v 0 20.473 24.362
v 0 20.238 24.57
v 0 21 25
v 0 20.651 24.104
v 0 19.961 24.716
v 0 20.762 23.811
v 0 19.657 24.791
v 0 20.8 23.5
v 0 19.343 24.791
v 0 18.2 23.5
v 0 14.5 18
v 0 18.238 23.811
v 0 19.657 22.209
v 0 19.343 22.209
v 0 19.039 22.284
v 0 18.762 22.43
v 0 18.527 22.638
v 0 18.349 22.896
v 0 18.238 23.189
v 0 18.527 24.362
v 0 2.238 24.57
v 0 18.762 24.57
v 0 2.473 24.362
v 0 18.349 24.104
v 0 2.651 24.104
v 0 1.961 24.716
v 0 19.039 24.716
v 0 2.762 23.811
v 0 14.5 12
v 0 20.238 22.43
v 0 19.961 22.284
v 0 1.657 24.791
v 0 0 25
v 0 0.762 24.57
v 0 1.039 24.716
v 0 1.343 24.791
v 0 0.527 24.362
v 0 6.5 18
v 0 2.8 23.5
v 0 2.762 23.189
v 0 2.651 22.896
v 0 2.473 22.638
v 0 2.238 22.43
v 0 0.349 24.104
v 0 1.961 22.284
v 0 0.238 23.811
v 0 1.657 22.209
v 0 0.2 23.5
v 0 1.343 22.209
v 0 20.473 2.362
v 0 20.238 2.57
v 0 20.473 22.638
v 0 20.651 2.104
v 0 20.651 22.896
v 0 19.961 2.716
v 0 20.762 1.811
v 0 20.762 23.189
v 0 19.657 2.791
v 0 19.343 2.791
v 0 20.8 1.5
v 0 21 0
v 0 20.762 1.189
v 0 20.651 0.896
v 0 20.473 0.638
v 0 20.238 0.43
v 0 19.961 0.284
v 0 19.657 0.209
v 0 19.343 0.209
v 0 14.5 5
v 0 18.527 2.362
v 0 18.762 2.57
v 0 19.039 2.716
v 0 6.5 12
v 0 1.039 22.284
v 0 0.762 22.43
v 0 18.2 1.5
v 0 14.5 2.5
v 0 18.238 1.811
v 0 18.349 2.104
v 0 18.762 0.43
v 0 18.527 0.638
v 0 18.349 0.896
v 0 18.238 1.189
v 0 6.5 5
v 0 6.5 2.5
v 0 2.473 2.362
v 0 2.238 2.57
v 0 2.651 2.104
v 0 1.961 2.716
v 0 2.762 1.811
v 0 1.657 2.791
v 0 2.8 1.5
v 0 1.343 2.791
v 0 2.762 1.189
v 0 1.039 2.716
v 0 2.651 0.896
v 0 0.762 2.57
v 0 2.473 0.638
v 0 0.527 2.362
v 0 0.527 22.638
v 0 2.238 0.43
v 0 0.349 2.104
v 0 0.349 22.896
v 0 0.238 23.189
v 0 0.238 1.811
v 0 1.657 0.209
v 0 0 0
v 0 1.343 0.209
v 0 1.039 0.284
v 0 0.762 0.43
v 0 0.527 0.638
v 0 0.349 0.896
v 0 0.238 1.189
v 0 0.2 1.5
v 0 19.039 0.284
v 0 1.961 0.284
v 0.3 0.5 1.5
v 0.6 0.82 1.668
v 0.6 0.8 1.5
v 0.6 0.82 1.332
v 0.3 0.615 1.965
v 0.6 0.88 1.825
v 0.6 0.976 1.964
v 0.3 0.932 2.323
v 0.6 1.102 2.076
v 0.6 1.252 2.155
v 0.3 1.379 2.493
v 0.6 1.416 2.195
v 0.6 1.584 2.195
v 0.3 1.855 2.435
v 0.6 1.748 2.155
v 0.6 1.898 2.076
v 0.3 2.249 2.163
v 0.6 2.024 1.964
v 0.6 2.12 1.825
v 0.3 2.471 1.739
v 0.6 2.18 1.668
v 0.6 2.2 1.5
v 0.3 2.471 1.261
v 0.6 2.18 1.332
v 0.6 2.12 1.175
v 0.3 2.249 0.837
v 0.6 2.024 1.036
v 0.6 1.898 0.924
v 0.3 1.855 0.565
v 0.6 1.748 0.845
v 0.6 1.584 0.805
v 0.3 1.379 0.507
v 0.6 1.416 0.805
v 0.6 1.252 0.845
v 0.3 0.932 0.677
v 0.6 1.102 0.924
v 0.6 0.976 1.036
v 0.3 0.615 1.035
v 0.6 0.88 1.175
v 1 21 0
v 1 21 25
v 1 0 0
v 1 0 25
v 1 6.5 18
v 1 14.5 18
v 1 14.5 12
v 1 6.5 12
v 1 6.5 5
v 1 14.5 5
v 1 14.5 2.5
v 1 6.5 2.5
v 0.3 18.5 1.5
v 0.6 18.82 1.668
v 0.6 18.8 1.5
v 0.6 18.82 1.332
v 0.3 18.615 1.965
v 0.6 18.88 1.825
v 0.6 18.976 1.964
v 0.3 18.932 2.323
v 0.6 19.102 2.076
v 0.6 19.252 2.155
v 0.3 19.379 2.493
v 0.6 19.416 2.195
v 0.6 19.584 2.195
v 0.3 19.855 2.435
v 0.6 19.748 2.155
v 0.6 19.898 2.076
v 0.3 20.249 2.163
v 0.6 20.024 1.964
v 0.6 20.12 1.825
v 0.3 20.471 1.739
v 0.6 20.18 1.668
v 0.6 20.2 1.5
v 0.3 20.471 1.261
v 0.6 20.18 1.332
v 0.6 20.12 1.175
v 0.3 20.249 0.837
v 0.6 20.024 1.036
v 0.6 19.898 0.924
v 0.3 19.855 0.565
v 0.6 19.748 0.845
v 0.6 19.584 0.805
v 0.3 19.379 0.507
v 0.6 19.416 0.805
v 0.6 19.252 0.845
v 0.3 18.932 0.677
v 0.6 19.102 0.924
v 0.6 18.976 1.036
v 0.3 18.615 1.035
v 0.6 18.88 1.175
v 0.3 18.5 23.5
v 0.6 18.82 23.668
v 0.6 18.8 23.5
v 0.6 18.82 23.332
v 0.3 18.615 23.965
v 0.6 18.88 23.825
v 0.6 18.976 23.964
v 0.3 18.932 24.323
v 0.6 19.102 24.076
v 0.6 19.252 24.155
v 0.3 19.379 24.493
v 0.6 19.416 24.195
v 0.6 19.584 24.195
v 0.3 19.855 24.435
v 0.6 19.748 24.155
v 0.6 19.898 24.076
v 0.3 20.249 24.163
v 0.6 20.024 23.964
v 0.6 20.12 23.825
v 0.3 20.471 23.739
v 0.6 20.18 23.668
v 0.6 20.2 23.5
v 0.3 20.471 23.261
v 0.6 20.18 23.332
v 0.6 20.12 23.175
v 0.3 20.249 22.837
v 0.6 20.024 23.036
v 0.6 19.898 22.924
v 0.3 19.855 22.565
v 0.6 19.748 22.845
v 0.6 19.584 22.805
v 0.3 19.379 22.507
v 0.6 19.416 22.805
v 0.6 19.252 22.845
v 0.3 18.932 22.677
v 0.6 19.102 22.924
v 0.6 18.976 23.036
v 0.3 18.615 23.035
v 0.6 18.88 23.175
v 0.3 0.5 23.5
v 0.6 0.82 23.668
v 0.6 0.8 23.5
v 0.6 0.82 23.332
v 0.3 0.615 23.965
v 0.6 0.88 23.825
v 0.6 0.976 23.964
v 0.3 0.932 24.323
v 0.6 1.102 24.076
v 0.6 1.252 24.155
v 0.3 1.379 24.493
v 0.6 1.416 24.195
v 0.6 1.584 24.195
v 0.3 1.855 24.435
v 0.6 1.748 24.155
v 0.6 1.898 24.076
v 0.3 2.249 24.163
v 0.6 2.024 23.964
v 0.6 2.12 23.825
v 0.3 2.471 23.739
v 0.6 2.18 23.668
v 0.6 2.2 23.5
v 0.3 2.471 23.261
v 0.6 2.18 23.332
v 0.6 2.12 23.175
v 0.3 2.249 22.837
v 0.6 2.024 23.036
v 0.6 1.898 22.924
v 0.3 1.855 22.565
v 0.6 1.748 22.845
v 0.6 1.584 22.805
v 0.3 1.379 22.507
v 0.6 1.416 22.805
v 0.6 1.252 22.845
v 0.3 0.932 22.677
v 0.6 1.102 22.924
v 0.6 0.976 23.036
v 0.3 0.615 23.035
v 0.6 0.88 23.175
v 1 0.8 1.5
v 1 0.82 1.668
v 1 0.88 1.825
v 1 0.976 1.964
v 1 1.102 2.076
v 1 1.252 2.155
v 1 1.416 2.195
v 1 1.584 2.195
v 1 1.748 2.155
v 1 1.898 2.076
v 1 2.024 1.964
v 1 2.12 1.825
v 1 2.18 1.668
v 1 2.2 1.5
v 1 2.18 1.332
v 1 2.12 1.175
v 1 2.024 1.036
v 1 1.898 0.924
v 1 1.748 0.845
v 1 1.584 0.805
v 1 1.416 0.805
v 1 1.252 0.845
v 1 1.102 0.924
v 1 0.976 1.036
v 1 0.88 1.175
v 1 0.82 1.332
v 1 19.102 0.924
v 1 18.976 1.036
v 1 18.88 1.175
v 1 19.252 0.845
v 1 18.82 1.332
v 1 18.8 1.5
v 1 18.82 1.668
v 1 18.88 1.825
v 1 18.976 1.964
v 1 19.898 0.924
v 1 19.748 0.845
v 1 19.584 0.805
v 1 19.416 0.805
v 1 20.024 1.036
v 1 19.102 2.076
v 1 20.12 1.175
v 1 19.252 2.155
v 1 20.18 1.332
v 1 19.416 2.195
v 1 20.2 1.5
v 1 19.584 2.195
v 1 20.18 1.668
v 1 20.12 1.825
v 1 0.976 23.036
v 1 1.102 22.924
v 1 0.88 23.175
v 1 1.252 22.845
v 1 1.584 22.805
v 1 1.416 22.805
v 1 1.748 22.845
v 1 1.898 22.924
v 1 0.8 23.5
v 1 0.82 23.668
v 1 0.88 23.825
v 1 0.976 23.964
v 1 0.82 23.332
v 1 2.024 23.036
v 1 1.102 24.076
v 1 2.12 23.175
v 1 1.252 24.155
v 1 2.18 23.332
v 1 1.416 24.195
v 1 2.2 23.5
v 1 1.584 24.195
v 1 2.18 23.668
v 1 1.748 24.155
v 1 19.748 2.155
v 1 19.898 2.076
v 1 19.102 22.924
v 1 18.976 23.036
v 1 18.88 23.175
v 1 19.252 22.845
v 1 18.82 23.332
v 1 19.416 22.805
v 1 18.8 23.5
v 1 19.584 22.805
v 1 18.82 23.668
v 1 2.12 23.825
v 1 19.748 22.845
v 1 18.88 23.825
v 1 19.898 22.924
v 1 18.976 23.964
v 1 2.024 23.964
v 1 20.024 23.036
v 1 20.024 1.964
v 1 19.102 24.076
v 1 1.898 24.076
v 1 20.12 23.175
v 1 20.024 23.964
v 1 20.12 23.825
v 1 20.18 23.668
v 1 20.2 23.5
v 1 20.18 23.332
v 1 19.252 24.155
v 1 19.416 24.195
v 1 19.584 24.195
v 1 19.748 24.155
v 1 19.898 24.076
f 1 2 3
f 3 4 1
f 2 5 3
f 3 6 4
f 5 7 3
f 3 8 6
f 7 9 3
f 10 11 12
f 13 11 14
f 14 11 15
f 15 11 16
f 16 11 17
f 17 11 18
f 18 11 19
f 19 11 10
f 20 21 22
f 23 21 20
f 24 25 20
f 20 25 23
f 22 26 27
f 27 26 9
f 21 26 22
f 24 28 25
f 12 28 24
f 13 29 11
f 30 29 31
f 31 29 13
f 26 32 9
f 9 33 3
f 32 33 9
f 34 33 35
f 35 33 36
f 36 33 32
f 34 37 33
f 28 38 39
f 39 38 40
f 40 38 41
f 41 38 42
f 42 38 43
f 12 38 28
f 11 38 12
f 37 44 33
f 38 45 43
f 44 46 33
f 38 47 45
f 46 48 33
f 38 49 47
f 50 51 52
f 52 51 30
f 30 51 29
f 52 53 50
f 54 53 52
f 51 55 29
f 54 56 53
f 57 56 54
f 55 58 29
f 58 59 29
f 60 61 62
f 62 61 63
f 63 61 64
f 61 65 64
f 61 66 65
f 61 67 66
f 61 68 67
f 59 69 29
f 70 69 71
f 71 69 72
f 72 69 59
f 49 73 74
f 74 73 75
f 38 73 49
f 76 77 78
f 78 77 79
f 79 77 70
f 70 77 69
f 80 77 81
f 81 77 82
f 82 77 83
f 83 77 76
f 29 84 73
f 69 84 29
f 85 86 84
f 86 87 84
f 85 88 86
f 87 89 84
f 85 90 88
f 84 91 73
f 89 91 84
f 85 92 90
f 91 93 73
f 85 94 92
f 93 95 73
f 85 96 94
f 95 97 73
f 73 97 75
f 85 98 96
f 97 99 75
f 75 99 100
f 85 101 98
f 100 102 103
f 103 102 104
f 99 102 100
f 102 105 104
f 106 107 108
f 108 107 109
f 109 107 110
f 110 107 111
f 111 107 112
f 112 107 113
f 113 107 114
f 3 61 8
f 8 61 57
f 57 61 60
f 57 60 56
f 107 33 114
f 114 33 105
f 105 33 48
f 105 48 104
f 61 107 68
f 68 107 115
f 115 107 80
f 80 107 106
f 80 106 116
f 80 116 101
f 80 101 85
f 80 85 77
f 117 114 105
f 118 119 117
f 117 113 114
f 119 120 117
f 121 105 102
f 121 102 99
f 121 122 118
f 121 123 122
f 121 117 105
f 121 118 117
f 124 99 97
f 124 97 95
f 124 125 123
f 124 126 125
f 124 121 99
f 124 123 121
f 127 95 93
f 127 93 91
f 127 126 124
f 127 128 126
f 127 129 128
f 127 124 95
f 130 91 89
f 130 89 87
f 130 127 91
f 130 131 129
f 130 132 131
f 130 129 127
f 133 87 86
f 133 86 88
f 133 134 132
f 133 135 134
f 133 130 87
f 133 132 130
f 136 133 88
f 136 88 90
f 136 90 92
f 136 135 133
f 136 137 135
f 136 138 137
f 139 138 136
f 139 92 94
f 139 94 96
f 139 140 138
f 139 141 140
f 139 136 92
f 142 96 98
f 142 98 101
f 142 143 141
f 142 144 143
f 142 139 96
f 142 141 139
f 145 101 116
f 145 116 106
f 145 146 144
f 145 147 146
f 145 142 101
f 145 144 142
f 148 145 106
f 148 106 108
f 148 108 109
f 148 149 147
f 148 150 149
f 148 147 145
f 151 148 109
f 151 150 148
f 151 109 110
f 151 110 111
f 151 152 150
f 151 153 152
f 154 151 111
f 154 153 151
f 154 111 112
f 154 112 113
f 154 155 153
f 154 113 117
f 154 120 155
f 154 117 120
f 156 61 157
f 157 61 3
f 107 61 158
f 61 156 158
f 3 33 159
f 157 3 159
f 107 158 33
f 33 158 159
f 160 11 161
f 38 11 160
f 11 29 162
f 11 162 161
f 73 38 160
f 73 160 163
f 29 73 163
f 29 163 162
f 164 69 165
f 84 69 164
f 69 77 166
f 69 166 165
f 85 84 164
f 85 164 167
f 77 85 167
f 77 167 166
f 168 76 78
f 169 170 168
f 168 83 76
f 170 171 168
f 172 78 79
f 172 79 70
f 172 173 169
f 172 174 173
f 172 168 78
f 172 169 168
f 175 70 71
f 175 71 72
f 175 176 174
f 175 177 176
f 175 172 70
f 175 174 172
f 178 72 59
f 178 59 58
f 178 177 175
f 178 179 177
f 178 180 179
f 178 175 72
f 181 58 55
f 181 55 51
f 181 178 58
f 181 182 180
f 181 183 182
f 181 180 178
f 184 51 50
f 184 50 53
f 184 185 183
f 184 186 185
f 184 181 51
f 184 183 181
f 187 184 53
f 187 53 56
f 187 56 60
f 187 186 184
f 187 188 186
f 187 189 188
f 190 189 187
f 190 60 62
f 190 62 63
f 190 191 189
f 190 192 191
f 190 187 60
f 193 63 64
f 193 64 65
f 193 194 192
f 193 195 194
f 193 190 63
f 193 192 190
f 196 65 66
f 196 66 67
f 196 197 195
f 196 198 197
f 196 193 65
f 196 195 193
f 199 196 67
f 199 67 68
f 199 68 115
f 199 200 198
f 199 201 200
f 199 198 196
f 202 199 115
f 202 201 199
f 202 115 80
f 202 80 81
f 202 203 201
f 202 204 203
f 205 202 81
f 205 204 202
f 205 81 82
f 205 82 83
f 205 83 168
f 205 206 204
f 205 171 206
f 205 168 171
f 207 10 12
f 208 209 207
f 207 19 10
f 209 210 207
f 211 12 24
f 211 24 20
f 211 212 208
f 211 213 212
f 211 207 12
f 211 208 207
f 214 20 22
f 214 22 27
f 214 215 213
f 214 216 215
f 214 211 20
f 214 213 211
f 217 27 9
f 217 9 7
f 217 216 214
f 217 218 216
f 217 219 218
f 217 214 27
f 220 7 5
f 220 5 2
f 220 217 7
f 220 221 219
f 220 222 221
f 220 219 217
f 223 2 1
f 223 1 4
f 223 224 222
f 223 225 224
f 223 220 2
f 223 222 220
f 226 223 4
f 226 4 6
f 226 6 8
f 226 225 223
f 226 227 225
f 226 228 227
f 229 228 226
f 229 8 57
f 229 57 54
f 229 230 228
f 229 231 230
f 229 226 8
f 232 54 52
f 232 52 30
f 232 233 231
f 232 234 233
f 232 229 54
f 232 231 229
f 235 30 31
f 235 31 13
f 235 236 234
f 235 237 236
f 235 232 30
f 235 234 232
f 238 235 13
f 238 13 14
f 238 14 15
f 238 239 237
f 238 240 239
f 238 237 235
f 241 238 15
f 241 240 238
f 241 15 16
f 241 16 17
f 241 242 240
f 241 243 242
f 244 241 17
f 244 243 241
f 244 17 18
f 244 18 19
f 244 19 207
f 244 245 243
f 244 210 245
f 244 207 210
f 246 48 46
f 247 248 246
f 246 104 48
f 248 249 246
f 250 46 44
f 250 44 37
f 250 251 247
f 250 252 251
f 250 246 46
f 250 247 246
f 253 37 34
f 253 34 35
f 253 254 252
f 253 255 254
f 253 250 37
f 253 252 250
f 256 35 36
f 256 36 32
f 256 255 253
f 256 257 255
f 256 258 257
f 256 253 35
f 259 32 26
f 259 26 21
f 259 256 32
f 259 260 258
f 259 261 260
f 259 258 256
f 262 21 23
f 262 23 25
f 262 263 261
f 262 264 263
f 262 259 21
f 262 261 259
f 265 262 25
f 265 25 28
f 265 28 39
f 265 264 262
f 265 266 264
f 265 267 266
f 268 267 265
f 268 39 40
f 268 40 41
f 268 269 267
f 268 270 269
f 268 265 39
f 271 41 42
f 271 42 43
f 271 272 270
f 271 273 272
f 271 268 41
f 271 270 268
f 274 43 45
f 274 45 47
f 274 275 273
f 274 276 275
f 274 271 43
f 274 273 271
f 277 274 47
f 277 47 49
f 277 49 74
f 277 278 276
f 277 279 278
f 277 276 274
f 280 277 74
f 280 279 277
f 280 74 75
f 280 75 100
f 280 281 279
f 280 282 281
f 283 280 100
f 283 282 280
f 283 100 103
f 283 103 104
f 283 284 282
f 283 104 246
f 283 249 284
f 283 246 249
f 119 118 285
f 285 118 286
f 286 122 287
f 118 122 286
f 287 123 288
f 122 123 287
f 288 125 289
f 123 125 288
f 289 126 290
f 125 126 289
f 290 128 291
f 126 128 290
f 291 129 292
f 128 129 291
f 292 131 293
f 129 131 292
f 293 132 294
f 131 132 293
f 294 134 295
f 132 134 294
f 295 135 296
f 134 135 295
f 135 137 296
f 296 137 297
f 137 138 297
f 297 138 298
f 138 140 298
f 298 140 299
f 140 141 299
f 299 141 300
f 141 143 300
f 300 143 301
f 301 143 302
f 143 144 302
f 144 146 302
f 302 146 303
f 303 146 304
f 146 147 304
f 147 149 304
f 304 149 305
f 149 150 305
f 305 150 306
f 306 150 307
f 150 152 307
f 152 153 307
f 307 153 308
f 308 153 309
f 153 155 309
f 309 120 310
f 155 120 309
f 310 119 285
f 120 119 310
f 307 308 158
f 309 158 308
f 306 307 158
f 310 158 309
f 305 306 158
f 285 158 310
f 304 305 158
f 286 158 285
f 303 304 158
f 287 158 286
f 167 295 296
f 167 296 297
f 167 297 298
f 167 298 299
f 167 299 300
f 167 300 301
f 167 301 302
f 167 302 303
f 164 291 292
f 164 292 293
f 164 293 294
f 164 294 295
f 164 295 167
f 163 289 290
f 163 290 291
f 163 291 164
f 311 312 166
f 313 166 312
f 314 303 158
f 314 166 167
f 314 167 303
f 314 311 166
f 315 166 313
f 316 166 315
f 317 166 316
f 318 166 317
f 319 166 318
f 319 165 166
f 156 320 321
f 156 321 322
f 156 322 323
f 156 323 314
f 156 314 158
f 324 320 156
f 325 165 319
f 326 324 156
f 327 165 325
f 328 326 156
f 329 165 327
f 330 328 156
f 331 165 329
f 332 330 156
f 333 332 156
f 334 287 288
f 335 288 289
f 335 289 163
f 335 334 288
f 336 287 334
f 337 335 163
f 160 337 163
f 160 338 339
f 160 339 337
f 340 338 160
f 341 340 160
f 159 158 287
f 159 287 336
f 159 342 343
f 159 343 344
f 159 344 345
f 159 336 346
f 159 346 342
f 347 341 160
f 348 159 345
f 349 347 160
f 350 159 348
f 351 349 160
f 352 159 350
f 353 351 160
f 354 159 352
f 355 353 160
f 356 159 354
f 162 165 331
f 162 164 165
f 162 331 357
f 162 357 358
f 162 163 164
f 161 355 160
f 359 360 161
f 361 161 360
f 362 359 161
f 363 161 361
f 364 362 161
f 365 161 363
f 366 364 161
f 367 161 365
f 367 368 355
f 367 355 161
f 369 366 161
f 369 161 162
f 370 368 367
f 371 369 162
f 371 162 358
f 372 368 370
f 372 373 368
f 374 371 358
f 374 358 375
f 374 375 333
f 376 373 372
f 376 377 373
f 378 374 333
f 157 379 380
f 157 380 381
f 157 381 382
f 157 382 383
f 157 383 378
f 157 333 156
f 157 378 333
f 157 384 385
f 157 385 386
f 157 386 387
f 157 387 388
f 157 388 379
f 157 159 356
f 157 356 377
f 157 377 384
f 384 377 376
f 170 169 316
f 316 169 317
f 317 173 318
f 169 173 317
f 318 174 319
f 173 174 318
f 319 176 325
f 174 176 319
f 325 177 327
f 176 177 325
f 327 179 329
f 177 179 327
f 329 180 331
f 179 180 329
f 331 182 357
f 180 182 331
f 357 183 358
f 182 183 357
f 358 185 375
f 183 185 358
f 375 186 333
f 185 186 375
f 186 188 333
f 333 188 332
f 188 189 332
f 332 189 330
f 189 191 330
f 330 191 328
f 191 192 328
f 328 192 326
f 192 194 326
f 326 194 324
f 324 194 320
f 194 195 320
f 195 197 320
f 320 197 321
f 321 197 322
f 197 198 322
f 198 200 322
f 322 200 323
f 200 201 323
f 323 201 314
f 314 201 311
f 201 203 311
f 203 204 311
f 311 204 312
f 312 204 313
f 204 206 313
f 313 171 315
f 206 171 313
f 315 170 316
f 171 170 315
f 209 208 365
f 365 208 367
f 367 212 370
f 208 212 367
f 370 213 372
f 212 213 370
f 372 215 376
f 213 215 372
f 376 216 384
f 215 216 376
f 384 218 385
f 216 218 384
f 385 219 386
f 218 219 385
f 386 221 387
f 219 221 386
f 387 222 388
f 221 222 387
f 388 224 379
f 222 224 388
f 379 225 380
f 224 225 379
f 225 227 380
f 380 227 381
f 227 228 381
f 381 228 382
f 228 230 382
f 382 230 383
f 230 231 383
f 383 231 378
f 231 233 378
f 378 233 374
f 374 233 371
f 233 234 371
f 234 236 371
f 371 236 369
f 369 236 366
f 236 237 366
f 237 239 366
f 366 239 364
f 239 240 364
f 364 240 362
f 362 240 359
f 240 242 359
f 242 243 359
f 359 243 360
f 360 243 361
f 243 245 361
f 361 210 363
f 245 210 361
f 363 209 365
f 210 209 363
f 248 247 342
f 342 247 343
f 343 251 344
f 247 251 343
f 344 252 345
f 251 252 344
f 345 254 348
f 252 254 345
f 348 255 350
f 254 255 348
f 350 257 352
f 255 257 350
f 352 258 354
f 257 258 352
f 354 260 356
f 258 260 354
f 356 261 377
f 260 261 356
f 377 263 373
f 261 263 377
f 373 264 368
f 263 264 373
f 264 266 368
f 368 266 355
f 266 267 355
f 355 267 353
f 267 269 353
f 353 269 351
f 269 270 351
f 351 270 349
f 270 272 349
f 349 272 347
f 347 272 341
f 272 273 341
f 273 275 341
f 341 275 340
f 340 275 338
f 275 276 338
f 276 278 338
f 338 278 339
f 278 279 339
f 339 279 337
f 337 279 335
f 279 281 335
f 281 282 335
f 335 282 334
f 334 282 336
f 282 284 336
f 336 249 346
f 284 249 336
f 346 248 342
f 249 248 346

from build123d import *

# Parameters (mm, degrees)
SKETCH_W        = 63.5
SKETCH_H        = 21
PAD_DEPTH       = 25
SKETCH001_W     = 63
SKETCH001_H     = 21
POCKET_DEPTH    = 25
SKETCH006_W     = 8
SKETCH006_H     = 6
SKETCH006_H_2   = 2.5
POCKET004_DEPTH = 5
SKETCH007_R     = 0.7
POCKET005_DEPTH = 5
CHAMFER_SIZE    = 0.6


with BuildPart() as part:
    # Sketch → Pad (new body)
    with BuildSketch(Plane.XY):
        with Locations((31.75, 10.5)):
            Rectangle(SKETCH_W, SKETCH_H)
    extrude(amount=PAD_DEPTH)

    # Sketch001 (on Face6 of Pad) → Pocket (cut)
    with BuildSketch(Plane.XY.offset(25)):
        with Locations((32.5, 10.5)):
            Rectangle(SKETCH001_W, SKETCH001_H)
    extrude(amount=-POCKET_DEPTH, mode=Mode.SUBTRACT)

    # Sketch006 → Pocket004 (cut)
    with BuildSketch(Plane(origin=(0, 0, 0), x_dir=(0, -1, 0), z_dir=(-1, 0, 0))):
        with Locations((-10.5, 15)):
            Rectangle(SKETCH006_W, SKETCH006_H)
        with Locations((-10.5, 3.75)):
            Rectangle(SKETCH006_W, SKETCH006_H_2)
    extrude(amount=-POCKET004_DEPTH, mode=Mode.SUBTRACT)

    # Sketch007 (on Face5 of Pocket004) → Pocket005 (cut)
    with BuildSketch(Plane(origin=(0, 0, 0), x_dir=(0, -1, 0), z_dir=(-1, 0, 0))):
        with Locations((-19.5, 1.5)):
            Circle(SKETCH007_R)
        with Locations((-1.5, 1.5)):
            Circle(SKETCH007_R)
        with Locations((-1.5, 23.5)):
            Circle(SKETCH007_R)
        with Locations((-19.5, 23.5)):
            Circle(SKETCH007_R)
    extrude(amount=-POCKET005_DEPTH, mode=Mode.SUBTRACT)

    # Chamfer
    chamfer_edges = [part.edges().sort_by_distance(p)[0] for p in [
        (0, 2.2, 1.5),
        (0, 20.2, 1.5),
        (0, 20.2, 23.5),
        (0, 2.2, 23.5),
    ]]
    chamfer(chamfer_edges, length=CHAMFER_SIZE)


solid = part.part
